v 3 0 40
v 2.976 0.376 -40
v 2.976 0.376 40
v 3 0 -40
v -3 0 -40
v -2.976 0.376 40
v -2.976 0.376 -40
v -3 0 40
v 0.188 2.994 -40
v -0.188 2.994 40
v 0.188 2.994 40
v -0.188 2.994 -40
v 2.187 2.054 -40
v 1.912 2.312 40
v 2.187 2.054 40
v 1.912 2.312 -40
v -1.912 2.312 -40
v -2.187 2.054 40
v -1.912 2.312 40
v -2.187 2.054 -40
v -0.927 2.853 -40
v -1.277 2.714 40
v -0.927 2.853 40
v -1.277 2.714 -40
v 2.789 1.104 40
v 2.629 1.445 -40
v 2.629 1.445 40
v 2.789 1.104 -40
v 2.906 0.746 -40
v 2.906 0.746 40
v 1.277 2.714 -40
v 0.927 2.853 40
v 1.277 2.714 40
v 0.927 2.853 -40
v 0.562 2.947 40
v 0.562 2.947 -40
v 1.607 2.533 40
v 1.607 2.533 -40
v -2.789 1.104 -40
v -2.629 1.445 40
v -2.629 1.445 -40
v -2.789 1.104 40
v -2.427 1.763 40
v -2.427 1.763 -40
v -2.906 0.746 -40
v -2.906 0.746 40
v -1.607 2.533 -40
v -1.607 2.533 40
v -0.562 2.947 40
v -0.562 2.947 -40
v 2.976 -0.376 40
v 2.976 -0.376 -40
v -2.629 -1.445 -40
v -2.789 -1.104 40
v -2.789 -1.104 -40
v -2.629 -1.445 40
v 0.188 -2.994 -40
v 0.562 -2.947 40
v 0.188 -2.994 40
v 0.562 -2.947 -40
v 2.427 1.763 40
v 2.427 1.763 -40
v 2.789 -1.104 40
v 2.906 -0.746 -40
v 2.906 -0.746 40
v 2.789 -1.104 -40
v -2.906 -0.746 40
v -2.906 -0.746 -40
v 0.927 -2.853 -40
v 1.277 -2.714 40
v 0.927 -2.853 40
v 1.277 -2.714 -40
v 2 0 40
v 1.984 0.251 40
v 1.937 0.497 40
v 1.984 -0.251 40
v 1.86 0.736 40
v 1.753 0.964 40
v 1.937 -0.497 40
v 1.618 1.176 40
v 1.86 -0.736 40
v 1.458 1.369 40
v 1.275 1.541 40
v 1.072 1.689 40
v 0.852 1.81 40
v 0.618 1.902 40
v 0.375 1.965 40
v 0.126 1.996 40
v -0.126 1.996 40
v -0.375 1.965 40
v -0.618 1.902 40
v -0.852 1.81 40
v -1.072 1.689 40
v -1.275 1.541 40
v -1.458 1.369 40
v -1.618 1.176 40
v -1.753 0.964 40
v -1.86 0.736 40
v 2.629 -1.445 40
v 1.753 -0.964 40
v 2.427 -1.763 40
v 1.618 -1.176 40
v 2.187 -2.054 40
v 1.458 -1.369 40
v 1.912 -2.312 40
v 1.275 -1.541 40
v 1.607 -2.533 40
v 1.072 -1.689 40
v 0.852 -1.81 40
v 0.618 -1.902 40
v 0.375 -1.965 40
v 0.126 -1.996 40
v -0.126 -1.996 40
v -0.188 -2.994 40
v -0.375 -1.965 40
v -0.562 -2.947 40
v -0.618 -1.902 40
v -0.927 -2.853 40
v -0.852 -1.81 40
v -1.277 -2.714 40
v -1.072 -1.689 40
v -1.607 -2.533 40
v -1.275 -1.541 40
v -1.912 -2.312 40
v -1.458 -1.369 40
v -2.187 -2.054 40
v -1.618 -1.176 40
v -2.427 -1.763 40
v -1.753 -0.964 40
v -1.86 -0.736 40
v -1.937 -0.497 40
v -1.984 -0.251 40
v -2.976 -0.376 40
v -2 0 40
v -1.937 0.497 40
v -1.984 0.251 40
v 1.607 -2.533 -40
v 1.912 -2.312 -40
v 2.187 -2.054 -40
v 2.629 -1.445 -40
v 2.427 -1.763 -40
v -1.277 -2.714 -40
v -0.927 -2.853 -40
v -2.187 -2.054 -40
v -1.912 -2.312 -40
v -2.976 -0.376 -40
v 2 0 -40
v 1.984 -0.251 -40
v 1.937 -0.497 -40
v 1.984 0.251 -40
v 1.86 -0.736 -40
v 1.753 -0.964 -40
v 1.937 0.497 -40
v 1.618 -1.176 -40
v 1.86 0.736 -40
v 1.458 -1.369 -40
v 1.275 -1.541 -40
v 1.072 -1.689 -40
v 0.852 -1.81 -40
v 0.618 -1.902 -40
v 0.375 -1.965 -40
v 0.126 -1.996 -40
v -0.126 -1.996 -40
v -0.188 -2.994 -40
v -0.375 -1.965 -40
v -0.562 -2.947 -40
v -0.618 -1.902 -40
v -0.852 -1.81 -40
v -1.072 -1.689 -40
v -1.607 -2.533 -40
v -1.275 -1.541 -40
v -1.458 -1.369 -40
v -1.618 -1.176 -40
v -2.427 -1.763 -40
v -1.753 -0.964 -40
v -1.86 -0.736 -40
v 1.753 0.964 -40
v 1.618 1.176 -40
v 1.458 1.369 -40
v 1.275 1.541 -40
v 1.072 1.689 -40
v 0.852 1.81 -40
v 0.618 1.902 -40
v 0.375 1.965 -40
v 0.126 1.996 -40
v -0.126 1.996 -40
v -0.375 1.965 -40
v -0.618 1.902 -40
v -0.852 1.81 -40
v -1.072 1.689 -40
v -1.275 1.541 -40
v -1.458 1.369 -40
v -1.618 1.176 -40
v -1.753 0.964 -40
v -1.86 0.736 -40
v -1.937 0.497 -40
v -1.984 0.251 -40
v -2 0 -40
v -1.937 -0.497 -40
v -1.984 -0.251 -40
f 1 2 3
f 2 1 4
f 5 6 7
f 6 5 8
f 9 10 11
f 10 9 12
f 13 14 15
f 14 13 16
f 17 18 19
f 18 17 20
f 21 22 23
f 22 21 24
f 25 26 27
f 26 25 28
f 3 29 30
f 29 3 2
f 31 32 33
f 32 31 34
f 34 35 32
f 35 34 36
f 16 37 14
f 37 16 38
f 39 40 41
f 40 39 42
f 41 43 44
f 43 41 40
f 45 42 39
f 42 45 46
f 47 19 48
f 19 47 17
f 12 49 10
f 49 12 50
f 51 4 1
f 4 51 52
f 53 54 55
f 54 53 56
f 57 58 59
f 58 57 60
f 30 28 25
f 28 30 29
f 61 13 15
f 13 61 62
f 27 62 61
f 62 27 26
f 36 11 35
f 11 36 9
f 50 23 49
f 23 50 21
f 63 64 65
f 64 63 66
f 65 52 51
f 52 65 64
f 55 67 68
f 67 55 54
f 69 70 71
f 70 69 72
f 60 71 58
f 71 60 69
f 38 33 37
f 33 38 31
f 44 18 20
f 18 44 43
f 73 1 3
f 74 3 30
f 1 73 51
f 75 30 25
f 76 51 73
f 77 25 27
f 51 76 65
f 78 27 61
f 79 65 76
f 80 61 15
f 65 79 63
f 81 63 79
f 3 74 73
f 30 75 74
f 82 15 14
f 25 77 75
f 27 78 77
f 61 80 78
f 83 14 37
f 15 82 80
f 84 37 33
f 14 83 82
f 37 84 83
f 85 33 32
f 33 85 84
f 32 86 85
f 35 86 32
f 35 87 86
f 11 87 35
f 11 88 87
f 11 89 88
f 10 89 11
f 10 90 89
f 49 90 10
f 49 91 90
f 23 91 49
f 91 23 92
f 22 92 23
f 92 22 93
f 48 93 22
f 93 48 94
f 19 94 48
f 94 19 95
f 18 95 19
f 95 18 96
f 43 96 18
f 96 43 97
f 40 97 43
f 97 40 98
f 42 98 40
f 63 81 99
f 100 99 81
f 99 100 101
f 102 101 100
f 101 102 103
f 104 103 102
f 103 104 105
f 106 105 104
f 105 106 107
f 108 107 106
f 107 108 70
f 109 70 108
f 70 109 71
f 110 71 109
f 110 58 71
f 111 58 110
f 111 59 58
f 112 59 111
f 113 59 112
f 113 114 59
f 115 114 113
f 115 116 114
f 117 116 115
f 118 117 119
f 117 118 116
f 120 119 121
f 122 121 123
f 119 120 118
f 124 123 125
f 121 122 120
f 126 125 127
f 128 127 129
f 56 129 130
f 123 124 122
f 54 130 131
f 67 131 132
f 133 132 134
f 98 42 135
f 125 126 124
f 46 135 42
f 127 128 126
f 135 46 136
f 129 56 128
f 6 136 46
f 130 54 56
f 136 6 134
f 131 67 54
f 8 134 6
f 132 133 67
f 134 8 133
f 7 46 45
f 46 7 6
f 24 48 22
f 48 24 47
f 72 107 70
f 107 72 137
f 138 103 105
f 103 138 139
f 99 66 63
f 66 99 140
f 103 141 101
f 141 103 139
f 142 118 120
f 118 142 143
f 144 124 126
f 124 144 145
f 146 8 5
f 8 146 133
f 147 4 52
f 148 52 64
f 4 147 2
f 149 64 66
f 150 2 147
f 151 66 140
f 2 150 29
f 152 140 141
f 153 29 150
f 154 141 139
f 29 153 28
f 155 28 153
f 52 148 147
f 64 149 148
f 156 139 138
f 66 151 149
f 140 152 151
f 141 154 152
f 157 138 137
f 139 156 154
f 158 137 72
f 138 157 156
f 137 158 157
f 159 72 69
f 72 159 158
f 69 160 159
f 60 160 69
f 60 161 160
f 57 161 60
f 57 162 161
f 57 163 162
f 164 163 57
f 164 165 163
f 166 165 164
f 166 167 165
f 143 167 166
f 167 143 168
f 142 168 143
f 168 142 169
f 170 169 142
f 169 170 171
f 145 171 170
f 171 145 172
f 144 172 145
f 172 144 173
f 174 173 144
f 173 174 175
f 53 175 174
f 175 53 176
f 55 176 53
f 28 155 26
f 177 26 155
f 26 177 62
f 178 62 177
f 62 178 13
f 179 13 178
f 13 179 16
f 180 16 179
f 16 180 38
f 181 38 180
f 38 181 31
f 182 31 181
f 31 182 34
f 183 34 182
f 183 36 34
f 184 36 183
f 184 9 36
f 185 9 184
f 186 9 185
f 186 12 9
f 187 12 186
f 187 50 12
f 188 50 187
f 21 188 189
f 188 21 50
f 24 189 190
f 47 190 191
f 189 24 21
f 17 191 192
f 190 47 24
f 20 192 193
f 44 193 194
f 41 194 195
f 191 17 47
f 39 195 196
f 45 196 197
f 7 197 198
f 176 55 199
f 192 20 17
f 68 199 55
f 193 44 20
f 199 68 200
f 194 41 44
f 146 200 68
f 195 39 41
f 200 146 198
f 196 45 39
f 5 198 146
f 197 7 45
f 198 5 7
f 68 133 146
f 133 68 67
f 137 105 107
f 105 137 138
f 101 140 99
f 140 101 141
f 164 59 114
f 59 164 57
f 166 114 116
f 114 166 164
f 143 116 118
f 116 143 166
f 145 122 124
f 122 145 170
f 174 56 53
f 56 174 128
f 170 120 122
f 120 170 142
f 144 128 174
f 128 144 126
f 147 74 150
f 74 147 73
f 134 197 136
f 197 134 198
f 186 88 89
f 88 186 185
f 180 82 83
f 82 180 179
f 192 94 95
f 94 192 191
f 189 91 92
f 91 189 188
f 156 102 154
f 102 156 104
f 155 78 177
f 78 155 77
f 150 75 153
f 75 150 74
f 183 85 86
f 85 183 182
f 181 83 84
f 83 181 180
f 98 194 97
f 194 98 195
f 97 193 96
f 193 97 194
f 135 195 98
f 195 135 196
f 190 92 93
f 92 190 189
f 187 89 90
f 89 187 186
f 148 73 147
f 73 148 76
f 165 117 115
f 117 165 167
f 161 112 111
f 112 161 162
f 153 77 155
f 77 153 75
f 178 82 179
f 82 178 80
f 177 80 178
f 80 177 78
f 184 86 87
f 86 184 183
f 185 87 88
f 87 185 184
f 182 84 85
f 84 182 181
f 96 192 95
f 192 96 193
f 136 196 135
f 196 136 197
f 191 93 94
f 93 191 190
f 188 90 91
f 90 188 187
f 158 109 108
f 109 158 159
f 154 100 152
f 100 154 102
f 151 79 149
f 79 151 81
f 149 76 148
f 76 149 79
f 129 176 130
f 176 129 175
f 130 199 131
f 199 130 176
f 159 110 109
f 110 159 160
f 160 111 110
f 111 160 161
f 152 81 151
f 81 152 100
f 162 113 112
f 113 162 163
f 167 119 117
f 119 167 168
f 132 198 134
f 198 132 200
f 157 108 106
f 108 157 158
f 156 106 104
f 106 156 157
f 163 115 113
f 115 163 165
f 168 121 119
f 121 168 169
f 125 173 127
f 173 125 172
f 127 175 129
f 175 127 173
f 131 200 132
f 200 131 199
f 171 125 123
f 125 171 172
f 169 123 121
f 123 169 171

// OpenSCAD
$fn = 50;


difference() {
	union() {
		translate(v = [0, 0, -40.0000000000]) {
			cylinder(h = 80, r = 3.0000000000);
		}
	}
	union() {
		translate(v = [0, 0, -100.0000000000]) {
			cylinder(h = 200, r = 2.0000000000);
		}
	}
}
